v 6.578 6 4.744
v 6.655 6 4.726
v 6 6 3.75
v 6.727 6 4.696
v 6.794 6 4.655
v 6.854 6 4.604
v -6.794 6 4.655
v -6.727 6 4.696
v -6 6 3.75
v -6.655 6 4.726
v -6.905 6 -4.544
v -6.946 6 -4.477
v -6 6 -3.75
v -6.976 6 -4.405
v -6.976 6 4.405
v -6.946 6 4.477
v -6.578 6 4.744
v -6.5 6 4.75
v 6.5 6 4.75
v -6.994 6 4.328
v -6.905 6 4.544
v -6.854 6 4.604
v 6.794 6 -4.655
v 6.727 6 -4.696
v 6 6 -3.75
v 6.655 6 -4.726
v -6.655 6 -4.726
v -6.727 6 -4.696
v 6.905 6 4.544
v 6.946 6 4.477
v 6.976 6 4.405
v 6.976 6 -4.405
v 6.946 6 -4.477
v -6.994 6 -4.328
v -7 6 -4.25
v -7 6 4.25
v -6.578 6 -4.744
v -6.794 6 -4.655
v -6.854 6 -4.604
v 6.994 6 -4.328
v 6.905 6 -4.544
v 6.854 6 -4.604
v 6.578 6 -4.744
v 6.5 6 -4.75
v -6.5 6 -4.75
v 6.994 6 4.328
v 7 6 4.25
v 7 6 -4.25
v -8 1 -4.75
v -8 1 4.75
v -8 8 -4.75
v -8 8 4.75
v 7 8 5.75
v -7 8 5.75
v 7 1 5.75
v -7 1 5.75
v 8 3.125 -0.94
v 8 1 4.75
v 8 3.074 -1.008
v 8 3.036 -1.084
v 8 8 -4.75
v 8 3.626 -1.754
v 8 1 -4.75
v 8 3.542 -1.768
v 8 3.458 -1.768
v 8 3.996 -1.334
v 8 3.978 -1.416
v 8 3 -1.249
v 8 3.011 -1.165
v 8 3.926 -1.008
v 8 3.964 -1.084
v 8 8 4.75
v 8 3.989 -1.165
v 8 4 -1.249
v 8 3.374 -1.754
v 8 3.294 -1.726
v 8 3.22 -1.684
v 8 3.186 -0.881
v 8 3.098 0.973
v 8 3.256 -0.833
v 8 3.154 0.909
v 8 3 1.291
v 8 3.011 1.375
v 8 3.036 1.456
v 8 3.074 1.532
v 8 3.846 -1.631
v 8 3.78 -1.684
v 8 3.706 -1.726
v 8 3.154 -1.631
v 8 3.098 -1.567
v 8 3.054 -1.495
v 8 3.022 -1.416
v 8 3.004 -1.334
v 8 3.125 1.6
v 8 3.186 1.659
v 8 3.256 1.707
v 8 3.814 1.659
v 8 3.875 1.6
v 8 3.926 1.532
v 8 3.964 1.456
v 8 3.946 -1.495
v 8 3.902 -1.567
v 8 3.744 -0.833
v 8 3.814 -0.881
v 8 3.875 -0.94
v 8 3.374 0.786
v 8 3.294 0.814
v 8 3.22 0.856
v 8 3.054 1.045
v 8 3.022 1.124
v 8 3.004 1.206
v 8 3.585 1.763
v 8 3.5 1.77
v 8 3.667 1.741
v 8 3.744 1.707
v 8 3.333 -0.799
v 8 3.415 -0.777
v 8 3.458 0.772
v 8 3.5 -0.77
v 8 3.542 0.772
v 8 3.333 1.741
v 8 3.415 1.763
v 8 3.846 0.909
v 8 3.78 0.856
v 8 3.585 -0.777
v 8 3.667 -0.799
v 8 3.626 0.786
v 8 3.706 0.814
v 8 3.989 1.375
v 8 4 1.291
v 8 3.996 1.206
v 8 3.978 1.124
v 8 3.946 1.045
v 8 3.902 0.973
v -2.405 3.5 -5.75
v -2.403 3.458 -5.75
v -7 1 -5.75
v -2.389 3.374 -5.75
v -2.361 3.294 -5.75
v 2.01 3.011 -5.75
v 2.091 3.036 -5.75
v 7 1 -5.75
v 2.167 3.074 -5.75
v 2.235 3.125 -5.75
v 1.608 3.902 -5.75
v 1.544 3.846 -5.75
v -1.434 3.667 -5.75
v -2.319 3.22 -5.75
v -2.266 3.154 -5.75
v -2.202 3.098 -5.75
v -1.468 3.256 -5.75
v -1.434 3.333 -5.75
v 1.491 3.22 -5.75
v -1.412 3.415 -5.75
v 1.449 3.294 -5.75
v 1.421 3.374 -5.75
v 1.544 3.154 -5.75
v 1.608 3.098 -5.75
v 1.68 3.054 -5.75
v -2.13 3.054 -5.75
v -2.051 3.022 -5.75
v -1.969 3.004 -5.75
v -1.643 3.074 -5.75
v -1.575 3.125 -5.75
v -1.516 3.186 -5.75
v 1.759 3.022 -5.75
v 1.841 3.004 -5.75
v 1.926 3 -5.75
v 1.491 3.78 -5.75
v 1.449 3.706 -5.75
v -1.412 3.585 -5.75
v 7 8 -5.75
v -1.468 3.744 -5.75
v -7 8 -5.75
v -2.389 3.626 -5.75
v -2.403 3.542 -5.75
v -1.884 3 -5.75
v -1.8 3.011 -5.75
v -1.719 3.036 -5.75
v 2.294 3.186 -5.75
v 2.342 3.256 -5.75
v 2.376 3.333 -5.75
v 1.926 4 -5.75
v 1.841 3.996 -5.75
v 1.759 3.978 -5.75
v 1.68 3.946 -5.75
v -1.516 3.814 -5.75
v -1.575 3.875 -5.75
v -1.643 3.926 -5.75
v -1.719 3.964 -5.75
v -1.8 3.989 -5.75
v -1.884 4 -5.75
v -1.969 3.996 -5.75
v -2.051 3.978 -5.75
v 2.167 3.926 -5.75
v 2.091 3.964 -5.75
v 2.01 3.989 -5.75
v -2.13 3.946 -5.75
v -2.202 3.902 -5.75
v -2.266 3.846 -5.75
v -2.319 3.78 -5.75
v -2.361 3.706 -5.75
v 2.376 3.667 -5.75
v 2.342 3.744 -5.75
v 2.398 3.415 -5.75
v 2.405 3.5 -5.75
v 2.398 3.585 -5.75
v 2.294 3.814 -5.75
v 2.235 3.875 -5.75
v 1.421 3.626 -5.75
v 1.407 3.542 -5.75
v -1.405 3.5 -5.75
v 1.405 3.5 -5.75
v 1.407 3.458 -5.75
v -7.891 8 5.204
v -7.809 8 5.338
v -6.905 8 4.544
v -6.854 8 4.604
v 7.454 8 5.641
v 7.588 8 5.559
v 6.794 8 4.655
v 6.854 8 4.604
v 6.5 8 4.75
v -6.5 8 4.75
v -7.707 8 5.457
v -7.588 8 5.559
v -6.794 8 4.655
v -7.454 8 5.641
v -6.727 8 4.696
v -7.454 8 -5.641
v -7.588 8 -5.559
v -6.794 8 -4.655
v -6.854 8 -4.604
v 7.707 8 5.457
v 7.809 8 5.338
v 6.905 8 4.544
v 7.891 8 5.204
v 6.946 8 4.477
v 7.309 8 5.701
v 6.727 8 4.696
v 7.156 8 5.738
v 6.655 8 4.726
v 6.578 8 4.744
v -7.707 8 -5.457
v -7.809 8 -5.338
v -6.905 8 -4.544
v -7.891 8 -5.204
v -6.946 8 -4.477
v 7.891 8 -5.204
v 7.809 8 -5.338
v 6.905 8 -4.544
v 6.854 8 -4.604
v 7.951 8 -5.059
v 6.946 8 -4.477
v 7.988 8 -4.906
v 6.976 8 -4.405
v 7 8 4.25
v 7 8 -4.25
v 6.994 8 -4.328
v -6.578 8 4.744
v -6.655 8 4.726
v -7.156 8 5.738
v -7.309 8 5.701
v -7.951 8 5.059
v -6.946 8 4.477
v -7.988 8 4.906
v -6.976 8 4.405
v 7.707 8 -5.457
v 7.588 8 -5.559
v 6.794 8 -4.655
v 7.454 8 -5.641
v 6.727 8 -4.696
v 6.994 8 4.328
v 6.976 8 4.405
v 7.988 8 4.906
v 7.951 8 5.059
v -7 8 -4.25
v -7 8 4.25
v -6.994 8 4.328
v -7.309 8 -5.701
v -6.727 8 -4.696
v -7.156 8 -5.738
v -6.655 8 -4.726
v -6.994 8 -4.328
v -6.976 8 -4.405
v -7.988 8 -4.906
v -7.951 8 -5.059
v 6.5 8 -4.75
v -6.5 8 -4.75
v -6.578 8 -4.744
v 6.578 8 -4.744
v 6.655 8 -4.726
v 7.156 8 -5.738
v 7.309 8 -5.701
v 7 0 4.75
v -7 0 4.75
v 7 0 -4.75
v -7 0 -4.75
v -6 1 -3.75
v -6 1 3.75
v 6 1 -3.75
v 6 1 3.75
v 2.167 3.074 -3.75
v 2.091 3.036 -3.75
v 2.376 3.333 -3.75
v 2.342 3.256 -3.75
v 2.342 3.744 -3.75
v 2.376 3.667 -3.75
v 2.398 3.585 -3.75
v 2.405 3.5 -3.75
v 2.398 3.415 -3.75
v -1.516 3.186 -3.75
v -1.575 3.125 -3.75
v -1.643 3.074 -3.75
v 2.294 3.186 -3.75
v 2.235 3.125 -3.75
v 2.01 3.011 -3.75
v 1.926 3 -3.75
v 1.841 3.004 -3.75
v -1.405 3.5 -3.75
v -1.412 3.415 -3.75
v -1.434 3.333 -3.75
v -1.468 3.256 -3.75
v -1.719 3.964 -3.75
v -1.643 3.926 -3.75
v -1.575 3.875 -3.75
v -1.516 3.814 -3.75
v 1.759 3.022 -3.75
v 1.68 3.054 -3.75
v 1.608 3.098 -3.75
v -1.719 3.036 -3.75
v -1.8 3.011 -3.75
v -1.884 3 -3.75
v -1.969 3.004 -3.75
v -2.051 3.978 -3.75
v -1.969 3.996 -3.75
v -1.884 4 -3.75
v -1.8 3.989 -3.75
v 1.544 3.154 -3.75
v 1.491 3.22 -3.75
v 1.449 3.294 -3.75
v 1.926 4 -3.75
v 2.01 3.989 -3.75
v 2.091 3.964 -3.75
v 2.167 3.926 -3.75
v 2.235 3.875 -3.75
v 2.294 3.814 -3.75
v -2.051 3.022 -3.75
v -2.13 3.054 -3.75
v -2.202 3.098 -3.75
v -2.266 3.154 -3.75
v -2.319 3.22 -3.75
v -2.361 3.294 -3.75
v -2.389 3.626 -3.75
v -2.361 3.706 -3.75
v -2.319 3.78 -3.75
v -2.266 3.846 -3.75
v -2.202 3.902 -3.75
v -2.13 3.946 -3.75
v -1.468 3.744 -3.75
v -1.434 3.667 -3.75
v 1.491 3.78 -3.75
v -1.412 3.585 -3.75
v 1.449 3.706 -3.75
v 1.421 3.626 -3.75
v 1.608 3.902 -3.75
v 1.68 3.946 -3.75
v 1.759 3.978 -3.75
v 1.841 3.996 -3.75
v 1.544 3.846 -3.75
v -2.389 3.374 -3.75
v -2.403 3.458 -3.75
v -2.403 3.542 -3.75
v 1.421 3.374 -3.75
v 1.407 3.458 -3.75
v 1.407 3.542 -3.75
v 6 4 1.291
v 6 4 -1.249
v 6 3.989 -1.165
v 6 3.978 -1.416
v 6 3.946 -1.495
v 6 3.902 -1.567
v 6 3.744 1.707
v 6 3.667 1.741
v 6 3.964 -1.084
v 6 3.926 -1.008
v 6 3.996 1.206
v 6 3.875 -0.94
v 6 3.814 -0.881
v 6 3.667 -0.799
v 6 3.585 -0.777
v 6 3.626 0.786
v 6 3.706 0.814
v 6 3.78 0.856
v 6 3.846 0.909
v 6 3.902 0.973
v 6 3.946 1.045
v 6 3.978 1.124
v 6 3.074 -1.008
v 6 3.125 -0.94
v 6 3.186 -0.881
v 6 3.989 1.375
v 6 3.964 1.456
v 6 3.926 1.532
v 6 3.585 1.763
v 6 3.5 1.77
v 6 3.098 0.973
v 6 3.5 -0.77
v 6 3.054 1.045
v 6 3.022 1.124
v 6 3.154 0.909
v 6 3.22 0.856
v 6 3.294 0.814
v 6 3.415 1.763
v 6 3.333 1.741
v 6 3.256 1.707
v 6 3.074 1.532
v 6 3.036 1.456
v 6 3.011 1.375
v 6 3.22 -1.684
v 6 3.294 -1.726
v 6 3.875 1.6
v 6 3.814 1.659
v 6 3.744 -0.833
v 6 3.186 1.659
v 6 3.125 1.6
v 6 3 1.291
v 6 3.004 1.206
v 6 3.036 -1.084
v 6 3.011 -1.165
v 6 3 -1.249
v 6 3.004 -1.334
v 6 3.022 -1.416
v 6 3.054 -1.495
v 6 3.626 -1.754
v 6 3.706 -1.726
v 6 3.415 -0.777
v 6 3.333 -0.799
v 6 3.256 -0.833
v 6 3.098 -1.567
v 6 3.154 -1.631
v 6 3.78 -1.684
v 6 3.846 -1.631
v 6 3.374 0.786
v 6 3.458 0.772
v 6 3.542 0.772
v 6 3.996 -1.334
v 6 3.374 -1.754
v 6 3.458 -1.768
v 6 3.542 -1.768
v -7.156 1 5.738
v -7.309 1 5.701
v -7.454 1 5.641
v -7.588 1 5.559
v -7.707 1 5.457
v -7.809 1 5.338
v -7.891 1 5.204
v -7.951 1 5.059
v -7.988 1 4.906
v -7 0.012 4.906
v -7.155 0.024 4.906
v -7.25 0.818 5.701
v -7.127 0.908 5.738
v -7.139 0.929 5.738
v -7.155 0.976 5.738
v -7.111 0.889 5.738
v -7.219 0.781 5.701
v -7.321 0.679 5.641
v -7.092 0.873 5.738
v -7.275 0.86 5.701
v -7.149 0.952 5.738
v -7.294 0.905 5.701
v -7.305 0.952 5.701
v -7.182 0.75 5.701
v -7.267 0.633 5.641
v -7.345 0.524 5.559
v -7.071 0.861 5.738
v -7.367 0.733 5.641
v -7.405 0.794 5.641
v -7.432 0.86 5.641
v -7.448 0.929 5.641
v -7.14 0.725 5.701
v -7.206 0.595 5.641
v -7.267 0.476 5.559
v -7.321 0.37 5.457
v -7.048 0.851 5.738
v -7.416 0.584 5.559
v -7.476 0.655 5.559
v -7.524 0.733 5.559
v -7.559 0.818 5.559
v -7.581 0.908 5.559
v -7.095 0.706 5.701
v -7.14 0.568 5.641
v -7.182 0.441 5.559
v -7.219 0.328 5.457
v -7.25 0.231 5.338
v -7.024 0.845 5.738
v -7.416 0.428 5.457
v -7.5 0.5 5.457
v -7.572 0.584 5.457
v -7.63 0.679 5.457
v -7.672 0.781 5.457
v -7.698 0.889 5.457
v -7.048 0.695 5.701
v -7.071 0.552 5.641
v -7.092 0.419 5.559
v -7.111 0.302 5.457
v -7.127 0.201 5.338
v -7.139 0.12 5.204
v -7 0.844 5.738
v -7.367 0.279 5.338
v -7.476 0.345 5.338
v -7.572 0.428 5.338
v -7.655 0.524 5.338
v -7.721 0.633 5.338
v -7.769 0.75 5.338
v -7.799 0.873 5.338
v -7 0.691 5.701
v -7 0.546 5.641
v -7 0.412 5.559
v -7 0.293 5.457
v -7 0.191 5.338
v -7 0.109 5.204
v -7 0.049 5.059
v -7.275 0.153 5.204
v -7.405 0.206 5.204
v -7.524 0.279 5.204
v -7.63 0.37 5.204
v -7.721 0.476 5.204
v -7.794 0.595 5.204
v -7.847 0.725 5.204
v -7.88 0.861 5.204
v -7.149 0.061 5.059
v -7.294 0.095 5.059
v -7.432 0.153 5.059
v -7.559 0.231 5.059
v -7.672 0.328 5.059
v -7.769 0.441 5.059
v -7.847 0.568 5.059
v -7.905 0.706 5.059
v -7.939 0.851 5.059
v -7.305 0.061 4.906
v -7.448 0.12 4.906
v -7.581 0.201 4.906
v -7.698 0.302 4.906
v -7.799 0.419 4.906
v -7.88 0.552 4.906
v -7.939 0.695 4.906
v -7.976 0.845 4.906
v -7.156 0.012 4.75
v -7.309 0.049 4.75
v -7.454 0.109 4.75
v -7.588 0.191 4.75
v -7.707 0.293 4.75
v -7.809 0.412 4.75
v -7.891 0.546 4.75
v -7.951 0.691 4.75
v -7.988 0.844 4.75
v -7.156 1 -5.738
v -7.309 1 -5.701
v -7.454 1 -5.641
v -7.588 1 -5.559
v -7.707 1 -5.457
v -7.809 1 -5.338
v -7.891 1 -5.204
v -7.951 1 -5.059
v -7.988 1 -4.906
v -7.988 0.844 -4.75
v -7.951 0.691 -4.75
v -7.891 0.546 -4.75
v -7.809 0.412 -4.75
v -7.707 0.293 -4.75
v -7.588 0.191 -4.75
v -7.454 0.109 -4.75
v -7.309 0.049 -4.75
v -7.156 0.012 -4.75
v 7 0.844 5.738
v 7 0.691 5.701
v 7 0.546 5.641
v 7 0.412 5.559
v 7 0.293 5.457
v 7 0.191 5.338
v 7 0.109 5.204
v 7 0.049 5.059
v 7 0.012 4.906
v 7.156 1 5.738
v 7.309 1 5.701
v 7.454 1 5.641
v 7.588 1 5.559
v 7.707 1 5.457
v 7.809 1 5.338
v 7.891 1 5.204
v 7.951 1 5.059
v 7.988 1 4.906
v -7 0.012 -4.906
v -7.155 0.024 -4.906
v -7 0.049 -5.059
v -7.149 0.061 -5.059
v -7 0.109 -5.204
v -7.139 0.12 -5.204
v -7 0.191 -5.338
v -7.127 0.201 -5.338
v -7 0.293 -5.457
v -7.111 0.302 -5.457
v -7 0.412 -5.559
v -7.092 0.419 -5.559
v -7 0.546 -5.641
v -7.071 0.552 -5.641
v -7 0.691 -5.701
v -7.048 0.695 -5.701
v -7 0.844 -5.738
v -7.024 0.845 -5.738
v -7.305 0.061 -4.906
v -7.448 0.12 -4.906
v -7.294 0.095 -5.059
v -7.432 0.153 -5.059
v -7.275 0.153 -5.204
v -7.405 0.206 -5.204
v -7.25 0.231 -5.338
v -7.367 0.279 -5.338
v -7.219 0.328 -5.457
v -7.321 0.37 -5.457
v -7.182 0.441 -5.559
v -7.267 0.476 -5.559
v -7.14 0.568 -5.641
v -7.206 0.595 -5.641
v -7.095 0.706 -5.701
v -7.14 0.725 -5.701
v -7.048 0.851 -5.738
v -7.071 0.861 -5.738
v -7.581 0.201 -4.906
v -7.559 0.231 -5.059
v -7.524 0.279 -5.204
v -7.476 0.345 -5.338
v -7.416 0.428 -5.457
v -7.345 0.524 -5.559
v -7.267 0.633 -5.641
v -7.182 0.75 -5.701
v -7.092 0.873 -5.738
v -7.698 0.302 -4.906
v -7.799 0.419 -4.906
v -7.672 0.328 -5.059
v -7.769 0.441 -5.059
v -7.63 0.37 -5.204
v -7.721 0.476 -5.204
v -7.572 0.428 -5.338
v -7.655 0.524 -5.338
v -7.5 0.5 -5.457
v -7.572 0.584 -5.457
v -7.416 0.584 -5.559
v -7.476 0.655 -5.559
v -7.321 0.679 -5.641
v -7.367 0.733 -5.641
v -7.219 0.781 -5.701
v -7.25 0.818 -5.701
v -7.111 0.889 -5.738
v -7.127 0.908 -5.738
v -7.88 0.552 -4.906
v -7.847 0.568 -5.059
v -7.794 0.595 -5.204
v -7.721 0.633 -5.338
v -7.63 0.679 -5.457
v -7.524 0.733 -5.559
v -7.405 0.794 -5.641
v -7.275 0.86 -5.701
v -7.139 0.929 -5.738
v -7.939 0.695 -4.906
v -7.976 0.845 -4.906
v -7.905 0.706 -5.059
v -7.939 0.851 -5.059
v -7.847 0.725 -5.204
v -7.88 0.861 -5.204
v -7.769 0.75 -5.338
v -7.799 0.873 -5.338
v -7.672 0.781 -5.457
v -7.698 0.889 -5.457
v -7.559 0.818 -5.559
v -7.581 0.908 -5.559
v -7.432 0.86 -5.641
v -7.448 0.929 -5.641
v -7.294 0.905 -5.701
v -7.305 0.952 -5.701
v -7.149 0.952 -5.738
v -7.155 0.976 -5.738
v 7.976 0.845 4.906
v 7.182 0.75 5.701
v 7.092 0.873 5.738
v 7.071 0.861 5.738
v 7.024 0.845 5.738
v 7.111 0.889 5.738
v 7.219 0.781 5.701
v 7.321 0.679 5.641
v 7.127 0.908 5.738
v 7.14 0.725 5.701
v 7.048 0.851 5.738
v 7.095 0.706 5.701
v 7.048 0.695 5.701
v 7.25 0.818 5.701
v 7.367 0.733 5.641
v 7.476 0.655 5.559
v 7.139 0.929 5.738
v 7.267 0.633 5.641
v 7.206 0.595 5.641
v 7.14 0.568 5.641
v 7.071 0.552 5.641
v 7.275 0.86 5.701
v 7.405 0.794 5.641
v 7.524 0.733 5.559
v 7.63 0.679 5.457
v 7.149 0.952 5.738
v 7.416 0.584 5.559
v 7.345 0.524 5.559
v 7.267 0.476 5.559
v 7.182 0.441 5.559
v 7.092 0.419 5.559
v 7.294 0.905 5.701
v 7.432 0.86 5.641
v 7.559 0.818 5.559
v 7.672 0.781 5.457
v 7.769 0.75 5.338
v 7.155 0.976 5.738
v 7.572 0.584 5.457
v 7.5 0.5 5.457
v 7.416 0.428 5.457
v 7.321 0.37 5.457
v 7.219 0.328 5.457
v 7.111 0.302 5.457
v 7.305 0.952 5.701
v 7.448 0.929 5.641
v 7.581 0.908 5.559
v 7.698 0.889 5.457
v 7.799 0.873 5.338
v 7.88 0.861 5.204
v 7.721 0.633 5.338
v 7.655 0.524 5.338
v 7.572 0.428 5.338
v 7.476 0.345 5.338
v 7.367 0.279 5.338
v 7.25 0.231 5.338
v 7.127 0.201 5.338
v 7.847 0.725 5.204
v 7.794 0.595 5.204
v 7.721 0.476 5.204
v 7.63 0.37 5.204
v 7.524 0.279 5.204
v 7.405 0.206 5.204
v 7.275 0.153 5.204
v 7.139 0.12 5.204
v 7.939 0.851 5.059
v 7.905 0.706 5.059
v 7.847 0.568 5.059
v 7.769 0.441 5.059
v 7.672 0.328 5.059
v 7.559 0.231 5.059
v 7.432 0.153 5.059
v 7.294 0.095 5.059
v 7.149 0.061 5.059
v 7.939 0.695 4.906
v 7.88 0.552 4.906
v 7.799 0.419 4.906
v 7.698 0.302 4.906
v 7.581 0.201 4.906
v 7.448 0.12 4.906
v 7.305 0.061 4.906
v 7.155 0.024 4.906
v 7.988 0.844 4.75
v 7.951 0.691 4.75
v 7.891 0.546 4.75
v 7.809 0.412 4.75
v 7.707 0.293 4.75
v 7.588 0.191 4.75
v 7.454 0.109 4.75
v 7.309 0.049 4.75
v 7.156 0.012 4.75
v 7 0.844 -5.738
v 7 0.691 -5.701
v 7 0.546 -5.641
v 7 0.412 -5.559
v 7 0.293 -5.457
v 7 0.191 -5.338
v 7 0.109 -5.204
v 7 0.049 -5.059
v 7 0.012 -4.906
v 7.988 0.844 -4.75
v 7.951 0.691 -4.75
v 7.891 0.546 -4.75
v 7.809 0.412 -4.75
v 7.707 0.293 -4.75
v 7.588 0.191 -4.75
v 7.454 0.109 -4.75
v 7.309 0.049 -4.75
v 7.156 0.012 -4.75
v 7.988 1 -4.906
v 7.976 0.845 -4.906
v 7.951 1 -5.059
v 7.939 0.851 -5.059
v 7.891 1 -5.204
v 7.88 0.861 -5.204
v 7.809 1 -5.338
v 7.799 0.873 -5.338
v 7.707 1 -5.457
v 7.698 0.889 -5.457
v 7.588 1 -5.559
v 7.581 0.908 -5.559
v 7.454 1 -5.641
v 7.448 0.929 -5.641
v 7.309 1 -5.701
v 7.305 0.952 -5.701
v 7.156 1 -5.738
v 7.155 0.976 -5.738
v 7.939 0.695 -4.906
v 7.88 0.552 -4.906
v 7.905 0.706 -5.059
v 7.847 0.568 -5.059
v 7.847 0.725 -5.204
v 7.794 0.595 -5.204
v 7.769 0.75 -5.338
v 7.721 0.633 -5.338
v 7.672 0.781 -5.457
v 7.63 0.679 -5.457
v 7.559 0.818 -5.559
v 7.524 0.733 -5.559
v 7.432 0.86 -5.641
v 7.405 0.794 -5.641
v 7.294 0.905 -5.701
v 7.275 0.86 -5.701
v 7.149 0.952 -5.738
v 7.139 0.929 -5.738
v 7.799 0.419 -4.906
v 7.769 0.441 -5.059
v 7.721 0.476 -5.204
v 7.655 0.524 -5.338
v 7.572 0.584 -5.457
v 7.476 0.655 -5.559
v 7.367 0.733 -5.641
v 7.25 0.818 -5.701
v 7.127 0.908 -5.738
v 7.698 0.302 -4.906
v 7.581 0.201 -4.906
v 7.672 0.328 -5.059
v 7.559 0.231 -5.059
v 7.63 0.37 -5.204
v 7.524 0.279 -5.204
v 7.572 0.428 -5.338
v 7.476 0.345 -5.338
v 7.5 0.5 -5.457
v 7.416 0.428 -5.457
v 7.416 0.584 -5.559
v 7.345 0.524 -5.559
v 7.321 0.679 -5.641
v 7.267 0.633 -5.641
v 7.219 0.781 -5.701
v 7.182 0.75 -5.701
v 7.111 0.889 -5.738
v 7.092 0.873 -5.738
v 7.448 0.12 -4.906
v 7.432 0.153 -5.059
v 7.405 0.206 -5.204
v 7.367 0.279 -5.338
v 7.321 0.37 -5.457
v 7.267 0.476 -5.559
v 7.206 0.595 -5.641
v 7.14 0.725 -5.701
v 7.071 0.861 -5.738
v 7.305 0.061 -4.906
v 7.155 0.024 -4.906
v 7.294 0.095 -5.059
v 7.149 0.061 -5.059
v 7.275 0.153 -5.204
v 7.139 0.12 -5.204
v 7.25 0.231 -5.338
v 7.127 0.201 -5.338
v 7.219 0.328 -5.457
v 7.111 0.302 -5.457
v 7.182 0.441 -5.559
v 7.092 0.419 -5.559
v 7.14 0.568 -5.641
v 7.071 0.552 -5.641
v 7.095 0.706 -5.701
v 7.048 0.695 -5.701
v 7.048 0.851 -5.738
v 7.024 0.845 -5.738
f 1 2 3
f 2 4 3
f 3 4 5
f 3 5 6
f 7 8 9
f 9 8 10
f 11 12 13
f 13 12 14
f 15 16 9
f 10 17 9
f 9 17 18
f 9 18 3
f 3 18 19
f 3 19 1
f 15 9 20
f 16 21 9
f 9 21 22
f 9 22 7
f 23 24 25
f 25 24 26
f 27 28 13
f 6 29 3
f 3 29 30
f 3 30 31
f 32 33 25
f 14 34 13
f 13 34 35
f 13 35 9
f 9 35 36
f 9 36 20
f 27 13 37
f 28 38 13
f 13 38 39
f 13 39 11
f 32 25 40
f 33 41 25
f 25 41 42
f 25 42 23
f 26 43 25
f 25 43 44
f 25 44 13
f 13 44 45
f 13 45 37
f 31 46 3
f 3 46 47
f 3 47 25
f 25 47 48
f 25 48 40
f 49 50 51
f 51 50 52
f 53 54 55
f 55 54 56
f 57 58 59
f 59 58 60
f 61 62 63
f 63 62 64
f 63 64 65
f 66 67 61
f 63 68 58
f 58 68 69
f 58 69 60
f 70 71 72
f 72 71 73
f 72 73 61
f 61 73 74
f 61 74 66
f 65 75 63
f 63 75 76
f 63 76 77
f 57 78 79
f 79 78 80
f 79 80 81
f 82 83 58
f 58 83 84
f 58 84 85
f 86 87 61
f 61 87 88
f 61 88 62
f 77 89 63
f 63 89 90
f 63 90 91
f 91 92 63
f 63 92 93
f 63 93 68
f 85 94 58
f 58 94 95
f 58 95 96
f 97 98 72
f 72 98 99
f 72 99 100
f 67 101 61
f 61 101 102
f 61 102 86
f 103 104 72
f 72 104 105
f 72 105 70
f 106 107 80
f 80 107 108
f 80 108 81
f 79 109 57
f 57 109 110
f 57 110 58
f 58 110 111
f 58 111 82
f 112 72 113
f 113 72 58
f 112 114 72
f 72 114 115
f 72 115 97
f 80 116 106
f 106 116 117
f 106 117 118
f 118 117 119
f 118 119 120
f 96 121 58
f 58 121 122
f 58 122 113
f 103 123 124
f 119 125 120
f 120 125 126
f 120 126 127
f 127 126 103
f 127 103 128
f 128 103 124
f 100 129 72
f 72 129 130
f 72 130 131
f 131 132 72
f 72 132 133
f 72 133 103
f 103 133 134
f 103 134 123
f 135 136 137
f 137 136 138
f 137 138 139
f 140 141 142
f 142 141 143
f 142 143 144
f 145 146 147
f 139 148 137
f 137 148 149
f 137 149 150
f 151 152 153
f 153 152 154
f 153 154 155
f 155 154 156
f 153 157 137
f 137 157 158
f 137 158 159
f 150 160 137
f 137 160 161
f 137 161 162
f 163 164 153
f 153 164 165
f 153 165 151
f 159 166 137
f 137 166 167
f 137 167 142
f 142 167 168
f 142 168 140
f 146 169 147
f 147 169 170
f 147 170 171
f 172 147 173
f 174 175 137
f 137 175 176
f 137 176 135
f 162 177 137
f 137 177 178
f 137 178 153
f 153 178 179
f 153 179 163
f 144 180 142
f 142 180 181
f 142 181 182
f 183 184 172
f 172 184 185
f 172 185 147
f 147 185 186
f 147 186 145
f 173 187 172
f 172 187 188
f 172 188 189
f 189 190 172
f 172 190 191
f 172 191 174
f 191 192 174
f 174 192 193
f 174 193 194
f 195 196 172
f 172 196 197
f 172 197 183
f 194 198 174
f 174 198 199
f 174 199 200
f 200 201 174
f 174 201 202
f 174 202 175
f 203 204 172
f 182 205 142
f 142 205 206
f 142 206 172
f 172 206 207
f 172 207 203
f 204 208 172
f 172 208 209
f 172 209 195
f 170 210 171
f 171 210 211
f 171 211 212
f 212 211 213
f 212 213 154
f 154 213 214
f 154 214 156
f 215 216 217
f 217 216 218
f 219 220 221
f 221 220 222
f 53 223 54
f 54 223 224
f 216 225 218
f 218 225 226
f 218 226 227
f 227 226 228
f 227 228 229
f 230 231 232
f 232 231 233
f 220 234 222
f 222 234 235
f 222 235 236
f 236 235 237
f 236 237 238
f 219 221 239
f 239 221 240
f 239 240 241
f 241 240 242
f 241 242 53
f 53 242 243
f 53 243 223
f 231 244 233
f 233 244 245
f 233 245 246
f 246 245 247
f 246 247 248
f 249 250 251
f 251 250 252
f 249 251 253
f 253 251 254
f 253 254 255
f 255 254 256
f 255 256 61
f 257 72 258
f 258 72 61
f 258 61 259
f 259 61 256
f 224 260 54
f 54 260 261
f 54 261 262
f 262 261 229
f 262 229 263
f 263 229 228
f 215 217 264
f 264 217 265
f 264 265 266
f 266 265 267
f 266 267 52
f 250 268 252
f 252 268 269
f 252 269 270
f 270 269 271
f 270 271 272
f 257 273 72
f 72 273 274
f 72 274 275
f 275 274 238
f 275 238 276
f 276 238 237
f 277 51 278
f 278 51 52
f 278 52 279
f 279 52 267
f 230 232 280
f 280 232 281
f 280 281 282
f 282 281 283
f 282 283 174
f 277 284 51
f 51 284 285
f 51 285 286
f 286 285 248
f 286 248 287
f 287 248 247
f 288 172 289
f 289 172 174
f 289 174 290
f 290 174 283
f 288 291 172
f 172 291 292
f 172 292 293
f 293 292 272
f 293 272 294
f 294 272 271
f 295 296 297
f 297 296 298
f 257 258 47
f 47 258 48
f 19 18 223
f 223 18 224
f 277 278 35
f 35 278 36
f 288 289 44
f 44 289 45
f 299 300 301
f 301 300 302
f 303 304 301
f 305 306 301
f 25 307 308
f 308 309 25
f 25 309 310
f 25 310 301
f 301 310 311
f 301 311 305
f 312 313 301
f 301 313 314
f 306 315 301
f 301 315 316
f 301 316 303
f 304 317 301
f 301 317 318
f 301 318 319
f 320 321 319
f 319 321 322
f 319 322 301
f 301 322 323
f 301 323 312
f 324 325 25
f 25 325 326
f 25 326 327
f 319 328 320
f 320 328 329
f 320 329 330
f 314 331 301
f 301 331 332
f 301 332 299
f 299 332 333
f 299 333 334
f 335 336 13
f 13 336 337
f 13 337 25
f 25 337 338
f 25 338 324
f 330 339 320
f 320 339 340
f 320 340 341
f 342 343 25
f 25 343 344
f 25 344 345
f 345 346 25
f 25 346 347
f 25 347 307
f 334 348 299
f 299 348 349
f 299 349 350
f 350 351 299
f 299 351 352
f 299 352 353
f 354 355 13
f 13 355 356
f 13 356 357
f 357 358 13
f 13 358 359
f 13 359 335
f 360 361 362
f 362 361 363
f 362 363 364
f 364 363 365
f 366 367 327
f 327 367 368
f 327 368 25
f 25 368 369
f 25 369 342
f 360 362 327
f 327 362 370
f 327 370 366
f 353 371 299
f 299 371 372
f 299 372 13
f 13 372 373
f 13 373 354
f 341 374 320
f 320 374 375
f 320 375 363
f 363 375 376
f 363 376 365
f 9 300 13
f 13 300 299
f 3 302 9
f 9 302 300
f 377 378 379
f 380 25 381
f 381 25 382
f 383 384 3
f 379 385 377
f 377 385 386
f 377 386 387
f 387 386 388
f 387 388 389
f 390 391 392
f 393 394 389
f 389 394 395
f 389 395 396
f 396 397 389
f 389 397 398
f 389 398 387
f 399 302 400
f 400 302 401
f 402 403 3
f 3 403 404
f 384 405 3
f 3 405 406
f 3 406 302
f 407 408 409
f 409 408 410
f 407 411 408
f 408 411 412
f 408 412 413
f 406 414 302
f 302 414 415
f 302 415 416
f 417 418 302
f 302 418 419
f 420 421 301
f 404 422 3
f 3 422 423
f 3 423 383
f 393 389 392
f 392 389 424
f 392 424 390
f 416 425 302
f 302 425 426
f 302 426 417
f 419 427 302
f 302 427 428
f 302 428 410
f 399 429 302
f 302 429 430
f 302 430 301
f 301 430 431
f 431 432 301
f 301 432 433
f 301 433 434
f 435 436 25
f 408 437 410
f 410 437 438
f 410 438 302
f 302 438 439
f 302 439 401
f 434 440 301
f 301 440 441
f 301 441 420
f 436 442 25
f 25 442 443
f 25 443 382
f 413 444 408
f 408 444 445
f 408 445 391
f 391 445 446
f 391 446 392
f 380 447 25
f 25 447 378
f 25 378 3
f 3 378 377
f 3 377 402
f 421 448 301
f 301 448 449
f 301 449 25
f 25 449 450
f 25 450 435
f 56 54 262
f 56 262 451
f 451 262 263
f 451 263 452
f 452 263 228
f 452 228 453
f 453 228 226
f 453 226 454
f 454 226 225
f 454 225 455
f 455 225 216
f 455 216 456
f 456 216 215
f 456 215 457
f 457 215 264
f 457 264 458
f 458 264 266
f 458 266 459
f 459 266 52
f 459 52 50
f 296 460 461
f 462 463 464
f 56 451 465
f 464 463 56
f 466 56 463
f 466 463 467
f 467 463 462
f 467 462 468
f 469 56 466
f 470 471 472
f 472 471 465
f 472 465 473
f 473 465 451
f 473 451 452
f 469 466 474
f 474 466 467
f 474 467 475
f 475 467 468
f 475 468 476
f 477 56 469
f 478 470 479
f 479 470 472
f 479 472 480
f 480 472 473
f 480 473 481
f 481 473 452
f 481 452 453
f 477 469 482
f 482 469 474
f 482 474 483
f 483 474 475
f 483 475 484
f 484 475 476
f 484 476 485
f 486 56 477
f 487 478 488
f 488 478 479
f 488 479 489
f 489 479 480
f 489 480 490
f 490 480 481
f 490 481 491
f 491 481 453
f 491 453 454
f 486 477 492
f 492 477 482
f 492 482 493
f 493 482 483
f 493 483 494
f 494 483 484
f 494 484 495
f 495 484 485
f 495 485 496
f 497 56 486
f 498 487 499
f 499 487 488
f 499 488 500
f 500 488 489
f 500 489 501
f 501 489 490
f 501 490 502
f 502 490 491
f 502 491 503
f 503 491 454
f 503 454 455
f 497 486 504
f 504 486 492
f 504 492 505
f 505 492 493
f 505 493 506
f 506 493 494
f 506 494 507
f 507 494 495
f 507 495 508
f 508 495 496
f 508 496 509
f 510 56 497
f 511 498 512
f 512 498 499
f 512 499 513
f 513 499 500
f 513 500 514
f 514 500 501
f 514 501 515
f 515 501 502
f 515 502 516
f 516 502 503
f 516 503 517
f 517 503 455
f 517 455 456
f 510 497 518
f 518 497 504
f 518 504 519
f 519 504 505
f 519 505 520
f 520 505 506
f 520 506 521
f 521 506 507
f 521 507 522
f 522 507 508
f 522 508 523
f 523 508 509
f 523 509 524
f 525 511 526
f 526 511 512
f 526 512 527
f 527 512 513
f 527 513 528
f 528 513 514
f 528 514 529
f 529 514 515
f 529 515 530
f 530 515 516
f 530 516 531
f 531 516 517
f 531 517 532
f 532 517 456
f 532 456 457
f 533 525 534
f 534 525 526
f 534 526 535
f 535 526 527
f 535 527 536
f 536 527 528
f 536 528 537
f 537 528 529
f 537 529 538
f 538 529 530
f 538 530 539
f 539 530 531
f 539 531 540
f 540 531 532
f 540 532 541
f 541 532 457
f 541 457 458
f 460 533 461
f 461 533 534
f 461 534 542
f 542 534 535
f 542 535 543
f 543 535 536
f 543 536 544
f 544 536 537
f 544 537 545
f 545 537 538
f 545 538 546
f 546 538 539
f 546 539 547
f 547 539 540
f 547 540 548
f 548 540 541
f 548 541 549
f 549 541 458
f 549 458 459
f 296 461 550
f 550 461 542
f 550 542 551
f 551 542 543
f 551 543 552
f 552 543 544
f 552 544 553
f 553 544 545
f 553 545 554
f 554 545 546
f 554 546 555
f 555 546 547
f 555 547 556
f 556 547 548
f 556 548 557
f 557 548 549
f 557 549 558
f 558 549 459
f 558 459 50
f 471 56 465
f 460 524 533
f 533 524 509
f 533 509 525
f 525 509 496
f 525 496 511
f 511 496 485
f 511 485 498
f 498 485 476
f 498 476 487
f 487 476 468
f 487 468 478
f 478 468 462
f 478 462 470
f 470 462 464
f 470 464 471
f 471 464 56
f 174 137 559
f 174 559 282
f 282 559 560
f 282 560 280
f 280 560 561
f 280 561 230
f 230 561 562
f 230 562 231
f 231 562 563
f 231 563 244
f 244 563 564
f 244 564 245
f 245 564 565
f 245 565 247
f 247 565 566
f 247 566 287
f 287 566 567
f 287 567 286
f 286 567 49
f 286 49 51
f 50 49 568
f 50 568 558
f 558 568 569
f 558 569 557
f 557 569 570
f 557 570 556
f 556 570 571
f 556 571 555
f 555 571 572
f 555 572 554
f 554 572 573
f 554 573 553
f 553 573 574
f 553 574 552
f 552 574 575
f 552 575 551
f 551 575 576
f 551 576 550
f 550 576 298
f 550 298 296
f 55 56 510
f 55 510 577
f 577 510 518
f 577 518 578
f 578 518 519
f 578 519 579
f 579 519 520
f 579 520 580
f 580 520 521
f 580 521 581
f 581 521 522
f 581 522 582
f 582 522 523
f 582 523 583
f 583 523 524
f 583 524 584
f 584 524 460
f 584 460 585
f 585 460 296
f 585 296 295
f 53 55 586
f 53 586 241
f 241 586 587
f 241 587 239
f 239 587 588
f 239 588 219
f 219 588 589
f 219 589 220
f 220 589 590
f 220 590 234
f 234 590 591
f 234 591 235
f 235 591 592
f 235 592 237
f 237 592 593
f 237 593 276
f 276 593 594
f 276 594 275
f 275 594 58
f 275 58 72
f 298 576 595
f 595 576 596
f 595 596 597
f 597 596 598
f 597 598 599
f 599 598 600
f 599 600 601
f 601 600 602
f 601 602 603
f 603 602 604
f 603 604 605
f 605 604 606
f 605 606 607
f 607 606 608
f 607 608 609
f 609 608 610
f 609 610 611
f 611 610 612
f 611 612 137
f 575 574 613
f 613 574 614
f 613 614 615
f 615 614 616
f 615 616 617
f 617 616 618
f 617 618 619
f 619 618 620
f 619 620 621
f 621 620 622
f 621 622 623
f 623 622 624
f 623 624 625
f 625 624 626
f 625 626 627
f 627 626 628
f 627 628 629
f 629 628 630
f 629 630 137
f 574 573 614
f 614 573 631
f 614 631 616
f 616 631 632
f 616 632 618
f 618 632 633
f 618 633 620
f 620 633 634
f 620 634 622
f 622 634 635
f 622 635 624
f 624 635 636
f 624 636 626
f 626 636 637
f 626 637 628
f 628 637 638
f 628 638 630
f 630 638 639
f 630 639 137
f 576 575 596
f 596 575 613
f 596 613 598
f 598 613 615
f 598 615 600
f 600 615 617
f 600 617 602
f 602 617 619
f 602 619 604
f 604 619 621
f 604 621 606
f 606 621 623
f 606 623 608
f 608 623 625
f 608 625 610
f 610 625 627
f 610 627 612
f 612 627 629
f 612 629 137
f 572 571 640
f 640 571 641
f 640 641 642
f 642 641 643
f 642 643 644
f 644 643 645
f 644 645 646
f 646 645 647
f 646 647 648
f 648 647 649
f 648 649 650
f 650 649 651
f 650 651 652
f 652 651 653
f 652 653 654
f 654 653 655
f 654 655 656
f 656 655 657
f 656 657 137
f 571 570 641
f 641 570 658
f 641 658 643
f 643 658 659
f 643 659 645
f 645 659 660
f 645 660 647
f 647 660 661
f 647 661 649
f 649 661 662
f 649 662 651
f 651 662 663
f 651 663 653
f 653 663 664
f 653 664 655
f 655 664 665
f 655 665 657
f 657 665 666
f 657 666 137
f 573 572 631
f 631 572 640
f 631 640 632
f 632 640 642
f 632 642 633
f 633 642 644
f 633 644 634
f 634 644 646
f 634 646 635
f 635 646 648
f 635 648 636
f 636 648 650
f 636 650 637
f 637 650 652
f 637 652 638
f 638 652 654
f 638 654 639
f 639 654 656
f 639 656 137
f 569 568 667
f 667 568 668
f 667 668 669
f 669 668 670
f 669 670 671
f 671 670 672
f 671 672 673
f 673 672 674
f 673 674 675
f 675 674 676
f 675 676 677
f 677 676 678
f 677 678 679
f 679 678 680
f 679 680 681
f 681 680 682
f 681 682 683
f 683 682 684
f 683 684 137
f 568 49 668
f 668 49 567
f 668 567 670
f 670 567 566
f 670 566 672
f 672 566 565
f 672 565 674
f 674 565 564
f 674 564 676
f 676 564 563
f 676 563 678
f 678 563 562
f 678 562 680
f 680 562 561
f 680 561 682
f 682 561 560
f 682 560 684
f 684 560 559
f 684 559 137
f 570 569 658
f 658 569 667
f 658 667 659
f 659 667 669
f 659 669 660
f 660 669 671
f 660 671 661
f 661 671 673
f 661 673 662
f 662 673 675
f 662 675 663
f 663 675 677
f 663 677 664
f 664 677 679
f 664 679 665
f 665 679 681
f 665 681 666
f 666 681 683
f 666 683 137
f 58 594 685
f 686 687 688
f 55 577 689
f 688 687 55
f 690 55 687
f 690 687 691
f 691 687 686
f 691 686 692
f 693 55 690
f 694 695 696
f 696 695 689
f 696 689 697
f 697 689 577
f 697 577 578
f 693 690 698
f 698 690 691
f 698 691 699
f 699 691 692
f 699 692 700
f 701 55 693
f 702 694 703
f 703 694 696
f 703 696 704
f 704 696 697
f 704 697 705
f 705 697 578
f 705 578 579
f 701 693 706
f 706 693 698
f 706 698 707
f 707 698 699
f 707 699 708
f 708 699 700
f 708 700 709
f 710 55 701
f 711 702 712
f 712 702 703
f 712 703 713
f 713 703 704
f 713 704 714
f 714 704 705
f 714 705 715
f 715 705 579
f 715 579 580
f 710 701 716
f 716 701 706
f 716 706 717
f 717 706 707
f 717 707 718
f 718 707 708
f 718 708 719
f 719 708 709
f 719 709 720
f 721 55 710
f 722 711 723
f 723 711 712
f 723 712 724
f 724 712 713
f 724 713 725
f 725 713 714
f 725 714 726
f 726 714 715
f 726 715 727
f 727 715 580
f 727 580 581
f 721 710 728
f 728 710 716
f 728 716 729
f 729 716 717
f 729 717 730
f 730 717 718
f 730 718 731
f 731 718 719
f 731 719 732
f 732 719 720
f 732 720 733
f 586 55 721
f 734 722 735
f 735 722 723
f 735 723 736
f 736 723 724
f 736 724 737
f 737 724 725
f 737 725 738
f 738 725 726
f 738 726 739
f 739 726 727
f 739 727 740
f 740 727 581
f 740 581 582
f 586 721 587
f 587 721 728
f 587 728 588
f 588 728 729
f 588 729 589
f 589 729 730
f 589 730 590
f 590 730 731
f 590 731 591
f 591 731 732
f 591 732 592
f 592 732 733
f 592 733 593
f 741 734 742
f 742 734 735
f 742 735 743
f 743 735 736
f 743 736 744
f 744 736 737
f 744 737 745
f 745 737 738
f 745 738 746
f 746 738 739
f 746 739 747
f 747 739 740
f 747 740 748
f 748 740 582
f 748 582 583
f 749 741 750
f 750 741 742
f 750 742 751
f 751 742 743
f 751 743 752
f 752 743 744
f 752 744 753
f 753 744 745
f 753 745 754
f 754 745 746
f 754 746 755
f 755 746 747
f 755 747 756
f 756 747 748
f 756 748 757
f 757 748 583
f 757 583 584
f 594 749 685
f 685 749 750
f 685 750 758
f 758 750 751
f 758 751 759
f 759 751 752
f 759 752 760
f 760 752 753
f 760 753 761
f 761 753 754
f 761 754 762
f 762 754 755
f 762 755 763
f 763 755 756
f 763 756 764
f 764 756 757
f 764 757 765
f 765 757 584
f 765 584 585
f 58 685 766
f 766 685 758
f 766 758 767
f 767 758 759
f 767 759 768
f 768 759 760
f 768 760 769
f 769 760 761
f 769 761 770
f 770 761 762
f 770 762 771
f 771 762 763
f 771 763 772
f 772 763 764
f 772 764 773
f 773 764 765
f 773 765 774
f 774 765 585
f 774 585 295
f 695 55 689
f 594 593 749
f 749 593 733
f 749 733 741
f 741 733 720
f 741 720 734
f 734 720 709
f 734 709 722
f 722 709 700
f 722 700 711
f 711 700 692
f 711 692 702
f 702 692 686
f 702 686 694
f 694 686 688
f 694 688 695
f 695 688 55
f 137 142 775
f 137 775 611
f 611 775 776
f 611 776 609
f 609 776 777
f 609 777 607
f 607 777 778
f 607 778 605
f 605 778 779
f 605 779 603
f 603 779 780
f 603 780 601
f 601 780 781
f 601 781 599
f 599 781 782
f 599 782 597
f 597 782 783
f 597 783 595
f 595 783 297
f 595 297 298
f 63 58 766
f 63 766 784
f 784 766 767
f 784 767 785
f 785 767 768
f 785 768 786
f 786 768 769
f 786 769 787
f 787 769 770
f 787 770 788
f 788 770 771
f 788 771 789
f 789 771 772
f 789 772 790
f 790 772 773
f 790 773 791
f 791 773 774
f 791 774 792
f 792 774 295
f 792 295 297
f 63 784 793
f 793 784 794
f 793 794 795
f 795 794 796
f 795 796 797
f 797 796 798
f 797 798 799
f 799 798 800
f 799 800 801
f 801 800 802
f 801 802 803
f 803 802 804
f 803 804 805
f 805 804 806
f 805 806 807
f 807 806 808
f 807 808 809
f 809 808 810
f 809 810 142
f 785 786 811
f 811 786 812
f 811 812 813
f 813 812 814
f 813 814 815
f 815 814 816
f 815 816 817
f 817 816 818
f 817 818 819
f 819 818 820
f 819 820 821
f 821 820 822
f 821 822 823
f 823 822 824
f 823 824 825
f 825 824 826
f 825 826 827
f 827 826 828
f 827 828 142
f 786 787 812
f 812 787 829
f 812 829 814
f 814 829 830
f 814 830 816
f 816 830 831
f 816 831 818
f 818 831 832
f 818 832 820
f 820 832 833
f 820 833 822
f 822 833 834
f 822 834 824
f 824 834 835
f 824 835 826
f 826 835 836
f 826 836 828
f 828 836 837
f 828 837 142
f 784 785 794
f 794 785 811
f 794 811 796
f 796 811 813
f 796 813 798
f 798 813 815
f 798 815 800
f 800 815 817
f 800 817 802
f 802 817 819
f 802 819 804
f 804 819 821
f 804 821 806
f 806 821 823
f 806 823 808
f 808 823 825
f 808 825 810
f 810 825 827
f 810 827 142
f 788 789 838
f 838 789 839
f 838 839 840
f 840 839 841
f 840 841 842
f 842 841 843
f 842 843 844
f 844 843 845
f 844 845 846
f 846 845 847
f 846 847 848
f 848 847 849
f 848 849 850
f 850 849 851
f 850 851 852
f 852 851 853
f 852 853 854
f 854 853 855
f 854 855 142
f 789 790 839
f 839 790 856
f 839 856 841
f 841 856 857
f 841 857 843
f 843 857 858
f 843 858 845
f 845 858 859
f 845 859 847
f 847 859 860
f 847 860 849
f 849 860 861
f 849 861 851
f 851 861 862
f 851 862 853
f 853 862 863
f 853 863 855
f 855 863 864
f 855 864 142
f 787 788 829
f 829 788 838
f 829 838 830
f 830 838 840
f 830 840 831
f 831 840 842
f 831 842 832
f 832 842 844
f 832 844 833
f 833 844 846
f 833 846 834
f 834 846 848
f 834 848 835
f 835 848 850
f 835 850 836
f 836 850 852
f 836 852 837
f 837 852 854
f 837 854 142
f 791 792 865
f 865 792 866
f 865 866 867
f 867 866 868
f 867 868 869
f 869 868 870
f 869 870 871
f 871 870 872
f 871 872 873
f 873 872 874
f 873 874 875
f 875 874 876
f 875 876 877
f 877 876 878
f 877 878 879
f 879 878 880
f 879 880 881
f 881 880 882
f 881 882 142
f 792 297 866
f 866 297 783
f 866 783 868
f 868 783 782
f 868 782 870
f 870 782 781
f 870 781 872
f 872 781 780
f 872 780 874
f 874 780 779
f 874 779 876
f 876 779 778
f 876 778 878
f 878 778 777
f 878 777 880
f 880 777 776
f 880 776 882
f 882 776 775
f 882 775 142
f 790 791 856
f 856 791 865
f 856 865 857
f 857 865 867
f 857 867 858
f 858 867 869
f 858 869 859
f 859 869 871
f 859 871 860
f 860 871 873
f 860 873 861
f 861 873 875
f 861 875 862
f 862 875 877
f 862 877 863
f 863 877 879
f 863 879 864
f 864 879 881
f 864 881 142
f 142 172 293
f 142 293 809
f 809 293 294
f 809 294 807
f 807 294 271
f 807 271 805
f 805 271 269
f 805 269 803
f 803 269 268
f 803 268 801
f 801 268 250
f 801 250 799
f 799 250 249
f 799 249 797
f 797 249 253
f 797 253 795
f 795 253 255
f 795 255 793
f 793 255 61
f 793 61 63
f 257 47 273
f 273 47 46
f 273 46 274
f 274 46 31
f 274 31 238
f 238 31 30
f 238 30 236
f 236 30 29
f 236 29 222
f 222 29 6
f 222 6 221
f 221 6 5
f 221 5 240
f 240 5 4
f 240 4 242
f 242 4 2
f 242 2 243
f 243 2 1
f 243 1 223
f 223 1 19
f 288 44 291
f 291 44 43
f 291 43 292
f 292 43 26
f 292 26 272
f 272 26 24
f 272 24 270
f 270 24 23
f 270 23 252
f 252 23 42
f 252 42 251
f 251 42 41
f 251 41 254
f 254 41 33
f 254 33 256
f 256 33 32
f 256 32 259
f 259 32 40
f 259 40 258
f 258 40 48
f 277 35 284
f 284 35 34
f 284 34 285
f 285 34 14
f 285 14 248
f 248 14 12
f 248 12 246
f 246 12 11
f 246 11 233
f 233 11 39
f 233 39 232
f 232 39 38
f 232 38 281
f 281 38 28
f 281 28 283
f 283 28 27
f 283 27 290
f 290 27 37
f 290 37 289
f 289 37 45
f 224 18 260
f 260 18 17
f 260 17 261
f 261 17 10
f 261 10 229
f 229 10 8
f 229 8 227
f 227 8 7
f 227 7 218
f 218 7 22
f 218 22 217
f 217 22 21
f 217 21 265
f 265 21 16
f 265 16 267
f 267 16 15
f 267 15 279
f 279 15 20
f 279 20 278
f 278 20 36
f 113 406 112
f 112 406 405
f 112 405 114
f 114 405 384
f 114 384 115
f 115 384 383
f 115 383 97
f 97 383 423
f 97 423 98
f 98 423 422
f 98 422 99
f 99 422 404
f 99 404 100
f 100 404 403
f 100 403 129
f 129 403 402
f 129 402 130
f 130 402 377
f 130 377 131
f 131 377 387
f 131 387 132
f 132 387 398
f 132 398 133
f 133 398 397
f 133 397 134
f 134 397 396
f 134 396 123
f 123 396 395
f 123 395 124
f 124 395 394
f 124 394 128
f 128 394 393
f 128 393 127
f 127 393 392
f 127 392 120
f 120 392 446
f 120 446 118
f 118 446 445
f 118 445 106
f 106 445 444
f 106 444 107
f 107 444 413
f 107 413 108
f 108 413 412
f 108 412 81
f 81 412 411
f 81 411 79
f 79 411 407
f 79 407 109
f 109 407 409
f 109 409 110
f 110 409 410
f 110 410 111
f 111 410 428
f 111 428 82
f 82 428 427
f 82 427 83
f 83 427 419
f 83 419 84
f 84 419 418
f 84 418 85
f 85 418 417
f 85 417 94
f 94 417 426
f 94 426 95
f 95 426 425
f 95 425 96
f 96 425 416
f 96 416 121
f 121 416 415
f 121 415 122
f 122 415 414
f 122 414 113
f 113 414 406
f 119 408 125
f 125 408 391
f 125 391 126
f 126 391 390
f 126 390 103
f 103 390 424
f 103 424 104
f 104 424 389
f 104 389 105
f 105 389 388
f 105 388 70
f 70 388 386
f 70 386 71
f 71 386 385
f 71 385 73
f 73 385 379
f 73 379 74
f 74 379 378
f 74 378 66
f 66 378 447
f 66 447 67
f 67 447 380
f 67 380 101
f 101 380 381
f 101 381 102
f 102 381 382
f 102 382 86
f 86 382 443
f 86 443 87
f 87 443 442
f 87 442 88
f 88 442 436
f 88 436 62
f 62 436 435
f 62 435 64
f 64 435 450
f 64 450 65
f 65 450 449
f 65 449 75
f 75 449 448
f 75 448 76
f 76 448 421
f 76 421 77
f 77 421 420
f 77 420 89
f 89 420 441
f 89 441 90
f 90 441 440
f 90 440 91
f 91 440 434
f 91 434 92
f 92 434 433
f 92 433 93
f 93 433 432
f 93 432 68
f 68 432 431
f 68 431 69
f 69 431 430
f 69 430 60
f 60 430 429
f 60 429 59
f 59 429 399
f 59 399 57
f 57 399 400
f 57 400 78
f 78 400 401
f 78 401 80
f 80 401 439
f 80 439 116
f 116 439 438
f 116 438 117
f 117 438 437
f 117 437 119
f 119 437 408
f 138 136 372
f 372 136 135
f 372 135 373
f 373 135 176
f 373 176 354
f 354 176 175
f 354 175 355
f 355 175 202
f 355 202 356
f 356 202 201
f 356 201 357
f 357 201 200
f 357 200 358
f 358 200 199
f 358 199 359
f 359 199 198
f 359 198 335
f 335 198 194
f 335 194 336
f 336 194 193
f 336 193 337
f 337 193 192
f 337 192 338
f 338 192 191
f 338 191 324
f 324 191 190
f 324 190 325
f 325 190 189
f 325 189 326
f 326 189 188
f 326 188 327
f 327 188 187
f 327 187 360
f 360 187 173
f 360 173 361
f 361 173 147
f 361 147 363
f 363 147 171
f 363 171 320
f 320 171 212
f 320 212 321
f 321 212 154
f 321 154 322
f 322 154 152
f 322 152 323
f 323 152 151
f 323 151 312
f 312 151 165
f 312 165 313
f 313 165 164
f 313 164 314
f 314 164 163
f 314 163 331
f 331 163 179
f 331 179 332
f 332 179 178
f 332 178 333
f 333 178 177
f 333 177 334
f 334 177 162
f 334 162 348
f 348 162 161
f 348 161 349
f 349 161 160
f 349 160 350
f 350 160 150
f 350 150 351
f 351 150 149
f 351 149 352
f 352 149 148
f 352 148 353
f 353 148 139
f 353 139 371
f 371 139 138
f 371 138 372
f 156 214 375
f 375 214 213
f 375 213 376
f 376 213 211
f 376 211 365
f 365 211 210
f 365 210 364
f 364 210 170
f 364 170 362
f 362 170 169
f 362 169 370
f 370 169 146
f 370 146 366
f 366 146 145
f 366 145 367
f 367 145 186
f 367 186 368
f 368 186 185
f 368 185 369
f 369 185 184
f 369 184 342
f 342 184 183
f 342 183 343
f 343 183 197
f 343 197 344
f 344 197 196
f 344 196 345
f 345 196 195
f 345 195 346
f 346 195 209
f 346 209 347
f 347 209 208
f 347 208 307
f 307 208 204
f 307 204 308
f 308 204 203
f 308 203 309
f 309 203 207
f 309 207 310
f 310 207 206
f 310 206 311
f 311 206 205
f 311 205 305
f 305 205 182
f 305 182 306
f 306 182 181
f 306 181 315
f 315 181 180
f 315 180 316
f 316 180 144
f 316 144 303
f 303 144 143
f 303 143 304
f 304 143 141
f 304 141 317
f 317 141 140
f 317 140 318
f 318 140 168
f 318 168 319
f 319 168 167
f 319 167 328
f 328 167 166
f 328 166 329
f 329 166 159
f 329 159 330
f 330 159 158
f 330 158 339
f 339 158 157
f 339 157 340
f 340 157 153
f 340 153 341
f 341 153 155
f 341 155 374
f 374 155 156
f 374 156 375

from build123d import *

# Parameters (mm, degrees)
CROQUIS1_W              = 16
CROQUIS1_H              = 11.5
SALIENTE_EXTRUIR2_DEPTH = 8
CROQUIS3_W              = 14
CROQUIS3_H              = 9.5
CORTAR_EXTRUIR2_DEPTH   = 2
CROQUIS4_W              = 12
CROQUIS4_H              = 7.5
CORTAR_EXTRUIR3_DEPTH   = 5
REDONDEO1_R             = 1
REDONDEO2_R             = 0.5
CORTAR_EXTRUIR4_REACH   = 19.119
CROQUIS5_R              = 0.5
CORTAR_EXTRUIR5_REACH   = 16.773
CROQUIS6_R              = 0.5


with BuildPart() as part:
    # Croquis1 → Saliente-Extruir2 (new body)
    with BuildSketch(Plane(origin=(0, 0, 0), x_dir=(1, 0, 0), z_dir=(0, 1, 0))):
        Rectangle(CROQUIS1_W, CROQUIS1_H)
    extrude(amount=SALIENTE_EXTRUIR2_DEPTH)

    # Croquis3 → Cortar-Extruir2 (cut)
    with BuildSketch(Plane(origin=(0, 8, 0), x_dir=(1, 0, 0), z_dir=(0, 1, 0))):
        Rectangle(CROQUIS3_W, CROQUIS3_H)
    extrude(amount=-CORTAR_EXTRUIR2_DEPTH, mode=Mode.SUBTRACT)

    # Croquis4 → Cortar-Extruir3 (cut)
    with BuildSketch(Plane(origin=(0, 6, 0), x_dir=(1, 0, 0), z_dir=(0, 1, 0))):
        Rectangle(CROQUIS4_W, CROQUIS4_H)
    extrude(amount=-CORTAR_EXTRUIR3_DEPTH, mode=Mode.SUBTRACT)

    # Redondeo1
    redondeo1_edges = [part.edges().sort_by_distance(p)[0] for p in [
        (0, 0, 5.75),
        (8, 0, 0),
        (0, 0, -5.75),
        (-8, 0, 0),
        (-8, 4, 5.75),
        (8, 4, 5.75),
        (8, 4, -5.75),
        (-8, 4, -5.75),
    ]]
    fillet(redondeo1_edges, radius=REDONDEO1_R)

    # Redondeo2
    redondeo2_edges = [part.edges().sort_by_distance(p)[0] for p in [
        (7, 7, -4.75),
        (7, 7, 4.75),
        (-7, 7, 4.75),
        (-7, 7, -4.75),
    ]]
    fillet(redondeo2_edges, radius=REDONDEO2_R)

    # Croquis5 → Cortar-Extruir4 (cut, up to next)
    with BuildSketch(Plane.ZY.offset(-6), mode=Mode.PRIVATE) as cortar_extruir4_sk1:
        with Locations((-1.27, 3.5)):
            Circle(CROQUIS5_R)
    cortar_extruir4_tool1 = extrude(cortar_extruir4_sk1.sketch, amount=-CORTAR_EXTRUIR4_REACH, mode=Mode.PRIVATE) & part.part
    # Croquis5 → Cortar-Extruir4 (cut, up to next)
    with BuildSketch(Plane.ZY.offset(-6), mode=Mode.PRIVATE) as cortar_extruir4_sk2:
        with Locations((1.27, 3.5)):
            Circle(CROQUIS5_R)
    cortar_extruir4_tool2 = extrude(cortar_extruir4_sk2.sketch, amount=-CORTAR_EXTRUIR4_REACH, mode=Mode.PRIVATE) & part.part
    add(cortar_extruir4_tool1.solids().sort_by_distance((6, 3.5, -1.27))[0], mode=Mode.SUBTRACT)
    add(cortar_extruir4_tool2.solids().sort_by_distance((6, 3.5, 1.27))[0], mode=Mode.SUBTRACT)

    # Croquis6 → Cortar-Extruir5 (cut, up to next)
    with BuildSketch(Plane.XY.offset(-3.75), mode=Mode.PRIVATE) as cortar_extruir5_sk1:
        with Locations((1.905, 3.5)):
            Circle(CROQUIS6_R)
    cortar_extruir5_tool1 = extrude(cortar_extruir5_sk1.sketch, amount=-CORTAR_EXTRUIR5_REACH, mode=Mode.PRIVATE) & part.part
    # Croquis6 → Cortar-Extruir5 (cut, up to next)
    with BuildSketch(Plane.XY.offset(-3.75), mode=Mode.PRIVATE) as cortar_extruir5_sk2:
        with Locations((-1.905, 3.5)):
            Circle(CROQUIS6_R)
    cortar_extruir5_tool2 = extrude(cortar_extruir5_sk2.sketch, amount=-CORTAR_EXTRUIR5_REACH, mode=Mode.PRIVATE) & part.part
    add(cortar_extruir5_tool1.solids().sort_by_distance((1.905, 3.5, -3.75))[0], mode=Mode.SUBTRACT)
    add(cortar_extruir5_tool2.solids().sort_by_distance((-1.905, 3.5, -3.75))[0], mode=Mode.SUBTRACT)


solid = part.part
